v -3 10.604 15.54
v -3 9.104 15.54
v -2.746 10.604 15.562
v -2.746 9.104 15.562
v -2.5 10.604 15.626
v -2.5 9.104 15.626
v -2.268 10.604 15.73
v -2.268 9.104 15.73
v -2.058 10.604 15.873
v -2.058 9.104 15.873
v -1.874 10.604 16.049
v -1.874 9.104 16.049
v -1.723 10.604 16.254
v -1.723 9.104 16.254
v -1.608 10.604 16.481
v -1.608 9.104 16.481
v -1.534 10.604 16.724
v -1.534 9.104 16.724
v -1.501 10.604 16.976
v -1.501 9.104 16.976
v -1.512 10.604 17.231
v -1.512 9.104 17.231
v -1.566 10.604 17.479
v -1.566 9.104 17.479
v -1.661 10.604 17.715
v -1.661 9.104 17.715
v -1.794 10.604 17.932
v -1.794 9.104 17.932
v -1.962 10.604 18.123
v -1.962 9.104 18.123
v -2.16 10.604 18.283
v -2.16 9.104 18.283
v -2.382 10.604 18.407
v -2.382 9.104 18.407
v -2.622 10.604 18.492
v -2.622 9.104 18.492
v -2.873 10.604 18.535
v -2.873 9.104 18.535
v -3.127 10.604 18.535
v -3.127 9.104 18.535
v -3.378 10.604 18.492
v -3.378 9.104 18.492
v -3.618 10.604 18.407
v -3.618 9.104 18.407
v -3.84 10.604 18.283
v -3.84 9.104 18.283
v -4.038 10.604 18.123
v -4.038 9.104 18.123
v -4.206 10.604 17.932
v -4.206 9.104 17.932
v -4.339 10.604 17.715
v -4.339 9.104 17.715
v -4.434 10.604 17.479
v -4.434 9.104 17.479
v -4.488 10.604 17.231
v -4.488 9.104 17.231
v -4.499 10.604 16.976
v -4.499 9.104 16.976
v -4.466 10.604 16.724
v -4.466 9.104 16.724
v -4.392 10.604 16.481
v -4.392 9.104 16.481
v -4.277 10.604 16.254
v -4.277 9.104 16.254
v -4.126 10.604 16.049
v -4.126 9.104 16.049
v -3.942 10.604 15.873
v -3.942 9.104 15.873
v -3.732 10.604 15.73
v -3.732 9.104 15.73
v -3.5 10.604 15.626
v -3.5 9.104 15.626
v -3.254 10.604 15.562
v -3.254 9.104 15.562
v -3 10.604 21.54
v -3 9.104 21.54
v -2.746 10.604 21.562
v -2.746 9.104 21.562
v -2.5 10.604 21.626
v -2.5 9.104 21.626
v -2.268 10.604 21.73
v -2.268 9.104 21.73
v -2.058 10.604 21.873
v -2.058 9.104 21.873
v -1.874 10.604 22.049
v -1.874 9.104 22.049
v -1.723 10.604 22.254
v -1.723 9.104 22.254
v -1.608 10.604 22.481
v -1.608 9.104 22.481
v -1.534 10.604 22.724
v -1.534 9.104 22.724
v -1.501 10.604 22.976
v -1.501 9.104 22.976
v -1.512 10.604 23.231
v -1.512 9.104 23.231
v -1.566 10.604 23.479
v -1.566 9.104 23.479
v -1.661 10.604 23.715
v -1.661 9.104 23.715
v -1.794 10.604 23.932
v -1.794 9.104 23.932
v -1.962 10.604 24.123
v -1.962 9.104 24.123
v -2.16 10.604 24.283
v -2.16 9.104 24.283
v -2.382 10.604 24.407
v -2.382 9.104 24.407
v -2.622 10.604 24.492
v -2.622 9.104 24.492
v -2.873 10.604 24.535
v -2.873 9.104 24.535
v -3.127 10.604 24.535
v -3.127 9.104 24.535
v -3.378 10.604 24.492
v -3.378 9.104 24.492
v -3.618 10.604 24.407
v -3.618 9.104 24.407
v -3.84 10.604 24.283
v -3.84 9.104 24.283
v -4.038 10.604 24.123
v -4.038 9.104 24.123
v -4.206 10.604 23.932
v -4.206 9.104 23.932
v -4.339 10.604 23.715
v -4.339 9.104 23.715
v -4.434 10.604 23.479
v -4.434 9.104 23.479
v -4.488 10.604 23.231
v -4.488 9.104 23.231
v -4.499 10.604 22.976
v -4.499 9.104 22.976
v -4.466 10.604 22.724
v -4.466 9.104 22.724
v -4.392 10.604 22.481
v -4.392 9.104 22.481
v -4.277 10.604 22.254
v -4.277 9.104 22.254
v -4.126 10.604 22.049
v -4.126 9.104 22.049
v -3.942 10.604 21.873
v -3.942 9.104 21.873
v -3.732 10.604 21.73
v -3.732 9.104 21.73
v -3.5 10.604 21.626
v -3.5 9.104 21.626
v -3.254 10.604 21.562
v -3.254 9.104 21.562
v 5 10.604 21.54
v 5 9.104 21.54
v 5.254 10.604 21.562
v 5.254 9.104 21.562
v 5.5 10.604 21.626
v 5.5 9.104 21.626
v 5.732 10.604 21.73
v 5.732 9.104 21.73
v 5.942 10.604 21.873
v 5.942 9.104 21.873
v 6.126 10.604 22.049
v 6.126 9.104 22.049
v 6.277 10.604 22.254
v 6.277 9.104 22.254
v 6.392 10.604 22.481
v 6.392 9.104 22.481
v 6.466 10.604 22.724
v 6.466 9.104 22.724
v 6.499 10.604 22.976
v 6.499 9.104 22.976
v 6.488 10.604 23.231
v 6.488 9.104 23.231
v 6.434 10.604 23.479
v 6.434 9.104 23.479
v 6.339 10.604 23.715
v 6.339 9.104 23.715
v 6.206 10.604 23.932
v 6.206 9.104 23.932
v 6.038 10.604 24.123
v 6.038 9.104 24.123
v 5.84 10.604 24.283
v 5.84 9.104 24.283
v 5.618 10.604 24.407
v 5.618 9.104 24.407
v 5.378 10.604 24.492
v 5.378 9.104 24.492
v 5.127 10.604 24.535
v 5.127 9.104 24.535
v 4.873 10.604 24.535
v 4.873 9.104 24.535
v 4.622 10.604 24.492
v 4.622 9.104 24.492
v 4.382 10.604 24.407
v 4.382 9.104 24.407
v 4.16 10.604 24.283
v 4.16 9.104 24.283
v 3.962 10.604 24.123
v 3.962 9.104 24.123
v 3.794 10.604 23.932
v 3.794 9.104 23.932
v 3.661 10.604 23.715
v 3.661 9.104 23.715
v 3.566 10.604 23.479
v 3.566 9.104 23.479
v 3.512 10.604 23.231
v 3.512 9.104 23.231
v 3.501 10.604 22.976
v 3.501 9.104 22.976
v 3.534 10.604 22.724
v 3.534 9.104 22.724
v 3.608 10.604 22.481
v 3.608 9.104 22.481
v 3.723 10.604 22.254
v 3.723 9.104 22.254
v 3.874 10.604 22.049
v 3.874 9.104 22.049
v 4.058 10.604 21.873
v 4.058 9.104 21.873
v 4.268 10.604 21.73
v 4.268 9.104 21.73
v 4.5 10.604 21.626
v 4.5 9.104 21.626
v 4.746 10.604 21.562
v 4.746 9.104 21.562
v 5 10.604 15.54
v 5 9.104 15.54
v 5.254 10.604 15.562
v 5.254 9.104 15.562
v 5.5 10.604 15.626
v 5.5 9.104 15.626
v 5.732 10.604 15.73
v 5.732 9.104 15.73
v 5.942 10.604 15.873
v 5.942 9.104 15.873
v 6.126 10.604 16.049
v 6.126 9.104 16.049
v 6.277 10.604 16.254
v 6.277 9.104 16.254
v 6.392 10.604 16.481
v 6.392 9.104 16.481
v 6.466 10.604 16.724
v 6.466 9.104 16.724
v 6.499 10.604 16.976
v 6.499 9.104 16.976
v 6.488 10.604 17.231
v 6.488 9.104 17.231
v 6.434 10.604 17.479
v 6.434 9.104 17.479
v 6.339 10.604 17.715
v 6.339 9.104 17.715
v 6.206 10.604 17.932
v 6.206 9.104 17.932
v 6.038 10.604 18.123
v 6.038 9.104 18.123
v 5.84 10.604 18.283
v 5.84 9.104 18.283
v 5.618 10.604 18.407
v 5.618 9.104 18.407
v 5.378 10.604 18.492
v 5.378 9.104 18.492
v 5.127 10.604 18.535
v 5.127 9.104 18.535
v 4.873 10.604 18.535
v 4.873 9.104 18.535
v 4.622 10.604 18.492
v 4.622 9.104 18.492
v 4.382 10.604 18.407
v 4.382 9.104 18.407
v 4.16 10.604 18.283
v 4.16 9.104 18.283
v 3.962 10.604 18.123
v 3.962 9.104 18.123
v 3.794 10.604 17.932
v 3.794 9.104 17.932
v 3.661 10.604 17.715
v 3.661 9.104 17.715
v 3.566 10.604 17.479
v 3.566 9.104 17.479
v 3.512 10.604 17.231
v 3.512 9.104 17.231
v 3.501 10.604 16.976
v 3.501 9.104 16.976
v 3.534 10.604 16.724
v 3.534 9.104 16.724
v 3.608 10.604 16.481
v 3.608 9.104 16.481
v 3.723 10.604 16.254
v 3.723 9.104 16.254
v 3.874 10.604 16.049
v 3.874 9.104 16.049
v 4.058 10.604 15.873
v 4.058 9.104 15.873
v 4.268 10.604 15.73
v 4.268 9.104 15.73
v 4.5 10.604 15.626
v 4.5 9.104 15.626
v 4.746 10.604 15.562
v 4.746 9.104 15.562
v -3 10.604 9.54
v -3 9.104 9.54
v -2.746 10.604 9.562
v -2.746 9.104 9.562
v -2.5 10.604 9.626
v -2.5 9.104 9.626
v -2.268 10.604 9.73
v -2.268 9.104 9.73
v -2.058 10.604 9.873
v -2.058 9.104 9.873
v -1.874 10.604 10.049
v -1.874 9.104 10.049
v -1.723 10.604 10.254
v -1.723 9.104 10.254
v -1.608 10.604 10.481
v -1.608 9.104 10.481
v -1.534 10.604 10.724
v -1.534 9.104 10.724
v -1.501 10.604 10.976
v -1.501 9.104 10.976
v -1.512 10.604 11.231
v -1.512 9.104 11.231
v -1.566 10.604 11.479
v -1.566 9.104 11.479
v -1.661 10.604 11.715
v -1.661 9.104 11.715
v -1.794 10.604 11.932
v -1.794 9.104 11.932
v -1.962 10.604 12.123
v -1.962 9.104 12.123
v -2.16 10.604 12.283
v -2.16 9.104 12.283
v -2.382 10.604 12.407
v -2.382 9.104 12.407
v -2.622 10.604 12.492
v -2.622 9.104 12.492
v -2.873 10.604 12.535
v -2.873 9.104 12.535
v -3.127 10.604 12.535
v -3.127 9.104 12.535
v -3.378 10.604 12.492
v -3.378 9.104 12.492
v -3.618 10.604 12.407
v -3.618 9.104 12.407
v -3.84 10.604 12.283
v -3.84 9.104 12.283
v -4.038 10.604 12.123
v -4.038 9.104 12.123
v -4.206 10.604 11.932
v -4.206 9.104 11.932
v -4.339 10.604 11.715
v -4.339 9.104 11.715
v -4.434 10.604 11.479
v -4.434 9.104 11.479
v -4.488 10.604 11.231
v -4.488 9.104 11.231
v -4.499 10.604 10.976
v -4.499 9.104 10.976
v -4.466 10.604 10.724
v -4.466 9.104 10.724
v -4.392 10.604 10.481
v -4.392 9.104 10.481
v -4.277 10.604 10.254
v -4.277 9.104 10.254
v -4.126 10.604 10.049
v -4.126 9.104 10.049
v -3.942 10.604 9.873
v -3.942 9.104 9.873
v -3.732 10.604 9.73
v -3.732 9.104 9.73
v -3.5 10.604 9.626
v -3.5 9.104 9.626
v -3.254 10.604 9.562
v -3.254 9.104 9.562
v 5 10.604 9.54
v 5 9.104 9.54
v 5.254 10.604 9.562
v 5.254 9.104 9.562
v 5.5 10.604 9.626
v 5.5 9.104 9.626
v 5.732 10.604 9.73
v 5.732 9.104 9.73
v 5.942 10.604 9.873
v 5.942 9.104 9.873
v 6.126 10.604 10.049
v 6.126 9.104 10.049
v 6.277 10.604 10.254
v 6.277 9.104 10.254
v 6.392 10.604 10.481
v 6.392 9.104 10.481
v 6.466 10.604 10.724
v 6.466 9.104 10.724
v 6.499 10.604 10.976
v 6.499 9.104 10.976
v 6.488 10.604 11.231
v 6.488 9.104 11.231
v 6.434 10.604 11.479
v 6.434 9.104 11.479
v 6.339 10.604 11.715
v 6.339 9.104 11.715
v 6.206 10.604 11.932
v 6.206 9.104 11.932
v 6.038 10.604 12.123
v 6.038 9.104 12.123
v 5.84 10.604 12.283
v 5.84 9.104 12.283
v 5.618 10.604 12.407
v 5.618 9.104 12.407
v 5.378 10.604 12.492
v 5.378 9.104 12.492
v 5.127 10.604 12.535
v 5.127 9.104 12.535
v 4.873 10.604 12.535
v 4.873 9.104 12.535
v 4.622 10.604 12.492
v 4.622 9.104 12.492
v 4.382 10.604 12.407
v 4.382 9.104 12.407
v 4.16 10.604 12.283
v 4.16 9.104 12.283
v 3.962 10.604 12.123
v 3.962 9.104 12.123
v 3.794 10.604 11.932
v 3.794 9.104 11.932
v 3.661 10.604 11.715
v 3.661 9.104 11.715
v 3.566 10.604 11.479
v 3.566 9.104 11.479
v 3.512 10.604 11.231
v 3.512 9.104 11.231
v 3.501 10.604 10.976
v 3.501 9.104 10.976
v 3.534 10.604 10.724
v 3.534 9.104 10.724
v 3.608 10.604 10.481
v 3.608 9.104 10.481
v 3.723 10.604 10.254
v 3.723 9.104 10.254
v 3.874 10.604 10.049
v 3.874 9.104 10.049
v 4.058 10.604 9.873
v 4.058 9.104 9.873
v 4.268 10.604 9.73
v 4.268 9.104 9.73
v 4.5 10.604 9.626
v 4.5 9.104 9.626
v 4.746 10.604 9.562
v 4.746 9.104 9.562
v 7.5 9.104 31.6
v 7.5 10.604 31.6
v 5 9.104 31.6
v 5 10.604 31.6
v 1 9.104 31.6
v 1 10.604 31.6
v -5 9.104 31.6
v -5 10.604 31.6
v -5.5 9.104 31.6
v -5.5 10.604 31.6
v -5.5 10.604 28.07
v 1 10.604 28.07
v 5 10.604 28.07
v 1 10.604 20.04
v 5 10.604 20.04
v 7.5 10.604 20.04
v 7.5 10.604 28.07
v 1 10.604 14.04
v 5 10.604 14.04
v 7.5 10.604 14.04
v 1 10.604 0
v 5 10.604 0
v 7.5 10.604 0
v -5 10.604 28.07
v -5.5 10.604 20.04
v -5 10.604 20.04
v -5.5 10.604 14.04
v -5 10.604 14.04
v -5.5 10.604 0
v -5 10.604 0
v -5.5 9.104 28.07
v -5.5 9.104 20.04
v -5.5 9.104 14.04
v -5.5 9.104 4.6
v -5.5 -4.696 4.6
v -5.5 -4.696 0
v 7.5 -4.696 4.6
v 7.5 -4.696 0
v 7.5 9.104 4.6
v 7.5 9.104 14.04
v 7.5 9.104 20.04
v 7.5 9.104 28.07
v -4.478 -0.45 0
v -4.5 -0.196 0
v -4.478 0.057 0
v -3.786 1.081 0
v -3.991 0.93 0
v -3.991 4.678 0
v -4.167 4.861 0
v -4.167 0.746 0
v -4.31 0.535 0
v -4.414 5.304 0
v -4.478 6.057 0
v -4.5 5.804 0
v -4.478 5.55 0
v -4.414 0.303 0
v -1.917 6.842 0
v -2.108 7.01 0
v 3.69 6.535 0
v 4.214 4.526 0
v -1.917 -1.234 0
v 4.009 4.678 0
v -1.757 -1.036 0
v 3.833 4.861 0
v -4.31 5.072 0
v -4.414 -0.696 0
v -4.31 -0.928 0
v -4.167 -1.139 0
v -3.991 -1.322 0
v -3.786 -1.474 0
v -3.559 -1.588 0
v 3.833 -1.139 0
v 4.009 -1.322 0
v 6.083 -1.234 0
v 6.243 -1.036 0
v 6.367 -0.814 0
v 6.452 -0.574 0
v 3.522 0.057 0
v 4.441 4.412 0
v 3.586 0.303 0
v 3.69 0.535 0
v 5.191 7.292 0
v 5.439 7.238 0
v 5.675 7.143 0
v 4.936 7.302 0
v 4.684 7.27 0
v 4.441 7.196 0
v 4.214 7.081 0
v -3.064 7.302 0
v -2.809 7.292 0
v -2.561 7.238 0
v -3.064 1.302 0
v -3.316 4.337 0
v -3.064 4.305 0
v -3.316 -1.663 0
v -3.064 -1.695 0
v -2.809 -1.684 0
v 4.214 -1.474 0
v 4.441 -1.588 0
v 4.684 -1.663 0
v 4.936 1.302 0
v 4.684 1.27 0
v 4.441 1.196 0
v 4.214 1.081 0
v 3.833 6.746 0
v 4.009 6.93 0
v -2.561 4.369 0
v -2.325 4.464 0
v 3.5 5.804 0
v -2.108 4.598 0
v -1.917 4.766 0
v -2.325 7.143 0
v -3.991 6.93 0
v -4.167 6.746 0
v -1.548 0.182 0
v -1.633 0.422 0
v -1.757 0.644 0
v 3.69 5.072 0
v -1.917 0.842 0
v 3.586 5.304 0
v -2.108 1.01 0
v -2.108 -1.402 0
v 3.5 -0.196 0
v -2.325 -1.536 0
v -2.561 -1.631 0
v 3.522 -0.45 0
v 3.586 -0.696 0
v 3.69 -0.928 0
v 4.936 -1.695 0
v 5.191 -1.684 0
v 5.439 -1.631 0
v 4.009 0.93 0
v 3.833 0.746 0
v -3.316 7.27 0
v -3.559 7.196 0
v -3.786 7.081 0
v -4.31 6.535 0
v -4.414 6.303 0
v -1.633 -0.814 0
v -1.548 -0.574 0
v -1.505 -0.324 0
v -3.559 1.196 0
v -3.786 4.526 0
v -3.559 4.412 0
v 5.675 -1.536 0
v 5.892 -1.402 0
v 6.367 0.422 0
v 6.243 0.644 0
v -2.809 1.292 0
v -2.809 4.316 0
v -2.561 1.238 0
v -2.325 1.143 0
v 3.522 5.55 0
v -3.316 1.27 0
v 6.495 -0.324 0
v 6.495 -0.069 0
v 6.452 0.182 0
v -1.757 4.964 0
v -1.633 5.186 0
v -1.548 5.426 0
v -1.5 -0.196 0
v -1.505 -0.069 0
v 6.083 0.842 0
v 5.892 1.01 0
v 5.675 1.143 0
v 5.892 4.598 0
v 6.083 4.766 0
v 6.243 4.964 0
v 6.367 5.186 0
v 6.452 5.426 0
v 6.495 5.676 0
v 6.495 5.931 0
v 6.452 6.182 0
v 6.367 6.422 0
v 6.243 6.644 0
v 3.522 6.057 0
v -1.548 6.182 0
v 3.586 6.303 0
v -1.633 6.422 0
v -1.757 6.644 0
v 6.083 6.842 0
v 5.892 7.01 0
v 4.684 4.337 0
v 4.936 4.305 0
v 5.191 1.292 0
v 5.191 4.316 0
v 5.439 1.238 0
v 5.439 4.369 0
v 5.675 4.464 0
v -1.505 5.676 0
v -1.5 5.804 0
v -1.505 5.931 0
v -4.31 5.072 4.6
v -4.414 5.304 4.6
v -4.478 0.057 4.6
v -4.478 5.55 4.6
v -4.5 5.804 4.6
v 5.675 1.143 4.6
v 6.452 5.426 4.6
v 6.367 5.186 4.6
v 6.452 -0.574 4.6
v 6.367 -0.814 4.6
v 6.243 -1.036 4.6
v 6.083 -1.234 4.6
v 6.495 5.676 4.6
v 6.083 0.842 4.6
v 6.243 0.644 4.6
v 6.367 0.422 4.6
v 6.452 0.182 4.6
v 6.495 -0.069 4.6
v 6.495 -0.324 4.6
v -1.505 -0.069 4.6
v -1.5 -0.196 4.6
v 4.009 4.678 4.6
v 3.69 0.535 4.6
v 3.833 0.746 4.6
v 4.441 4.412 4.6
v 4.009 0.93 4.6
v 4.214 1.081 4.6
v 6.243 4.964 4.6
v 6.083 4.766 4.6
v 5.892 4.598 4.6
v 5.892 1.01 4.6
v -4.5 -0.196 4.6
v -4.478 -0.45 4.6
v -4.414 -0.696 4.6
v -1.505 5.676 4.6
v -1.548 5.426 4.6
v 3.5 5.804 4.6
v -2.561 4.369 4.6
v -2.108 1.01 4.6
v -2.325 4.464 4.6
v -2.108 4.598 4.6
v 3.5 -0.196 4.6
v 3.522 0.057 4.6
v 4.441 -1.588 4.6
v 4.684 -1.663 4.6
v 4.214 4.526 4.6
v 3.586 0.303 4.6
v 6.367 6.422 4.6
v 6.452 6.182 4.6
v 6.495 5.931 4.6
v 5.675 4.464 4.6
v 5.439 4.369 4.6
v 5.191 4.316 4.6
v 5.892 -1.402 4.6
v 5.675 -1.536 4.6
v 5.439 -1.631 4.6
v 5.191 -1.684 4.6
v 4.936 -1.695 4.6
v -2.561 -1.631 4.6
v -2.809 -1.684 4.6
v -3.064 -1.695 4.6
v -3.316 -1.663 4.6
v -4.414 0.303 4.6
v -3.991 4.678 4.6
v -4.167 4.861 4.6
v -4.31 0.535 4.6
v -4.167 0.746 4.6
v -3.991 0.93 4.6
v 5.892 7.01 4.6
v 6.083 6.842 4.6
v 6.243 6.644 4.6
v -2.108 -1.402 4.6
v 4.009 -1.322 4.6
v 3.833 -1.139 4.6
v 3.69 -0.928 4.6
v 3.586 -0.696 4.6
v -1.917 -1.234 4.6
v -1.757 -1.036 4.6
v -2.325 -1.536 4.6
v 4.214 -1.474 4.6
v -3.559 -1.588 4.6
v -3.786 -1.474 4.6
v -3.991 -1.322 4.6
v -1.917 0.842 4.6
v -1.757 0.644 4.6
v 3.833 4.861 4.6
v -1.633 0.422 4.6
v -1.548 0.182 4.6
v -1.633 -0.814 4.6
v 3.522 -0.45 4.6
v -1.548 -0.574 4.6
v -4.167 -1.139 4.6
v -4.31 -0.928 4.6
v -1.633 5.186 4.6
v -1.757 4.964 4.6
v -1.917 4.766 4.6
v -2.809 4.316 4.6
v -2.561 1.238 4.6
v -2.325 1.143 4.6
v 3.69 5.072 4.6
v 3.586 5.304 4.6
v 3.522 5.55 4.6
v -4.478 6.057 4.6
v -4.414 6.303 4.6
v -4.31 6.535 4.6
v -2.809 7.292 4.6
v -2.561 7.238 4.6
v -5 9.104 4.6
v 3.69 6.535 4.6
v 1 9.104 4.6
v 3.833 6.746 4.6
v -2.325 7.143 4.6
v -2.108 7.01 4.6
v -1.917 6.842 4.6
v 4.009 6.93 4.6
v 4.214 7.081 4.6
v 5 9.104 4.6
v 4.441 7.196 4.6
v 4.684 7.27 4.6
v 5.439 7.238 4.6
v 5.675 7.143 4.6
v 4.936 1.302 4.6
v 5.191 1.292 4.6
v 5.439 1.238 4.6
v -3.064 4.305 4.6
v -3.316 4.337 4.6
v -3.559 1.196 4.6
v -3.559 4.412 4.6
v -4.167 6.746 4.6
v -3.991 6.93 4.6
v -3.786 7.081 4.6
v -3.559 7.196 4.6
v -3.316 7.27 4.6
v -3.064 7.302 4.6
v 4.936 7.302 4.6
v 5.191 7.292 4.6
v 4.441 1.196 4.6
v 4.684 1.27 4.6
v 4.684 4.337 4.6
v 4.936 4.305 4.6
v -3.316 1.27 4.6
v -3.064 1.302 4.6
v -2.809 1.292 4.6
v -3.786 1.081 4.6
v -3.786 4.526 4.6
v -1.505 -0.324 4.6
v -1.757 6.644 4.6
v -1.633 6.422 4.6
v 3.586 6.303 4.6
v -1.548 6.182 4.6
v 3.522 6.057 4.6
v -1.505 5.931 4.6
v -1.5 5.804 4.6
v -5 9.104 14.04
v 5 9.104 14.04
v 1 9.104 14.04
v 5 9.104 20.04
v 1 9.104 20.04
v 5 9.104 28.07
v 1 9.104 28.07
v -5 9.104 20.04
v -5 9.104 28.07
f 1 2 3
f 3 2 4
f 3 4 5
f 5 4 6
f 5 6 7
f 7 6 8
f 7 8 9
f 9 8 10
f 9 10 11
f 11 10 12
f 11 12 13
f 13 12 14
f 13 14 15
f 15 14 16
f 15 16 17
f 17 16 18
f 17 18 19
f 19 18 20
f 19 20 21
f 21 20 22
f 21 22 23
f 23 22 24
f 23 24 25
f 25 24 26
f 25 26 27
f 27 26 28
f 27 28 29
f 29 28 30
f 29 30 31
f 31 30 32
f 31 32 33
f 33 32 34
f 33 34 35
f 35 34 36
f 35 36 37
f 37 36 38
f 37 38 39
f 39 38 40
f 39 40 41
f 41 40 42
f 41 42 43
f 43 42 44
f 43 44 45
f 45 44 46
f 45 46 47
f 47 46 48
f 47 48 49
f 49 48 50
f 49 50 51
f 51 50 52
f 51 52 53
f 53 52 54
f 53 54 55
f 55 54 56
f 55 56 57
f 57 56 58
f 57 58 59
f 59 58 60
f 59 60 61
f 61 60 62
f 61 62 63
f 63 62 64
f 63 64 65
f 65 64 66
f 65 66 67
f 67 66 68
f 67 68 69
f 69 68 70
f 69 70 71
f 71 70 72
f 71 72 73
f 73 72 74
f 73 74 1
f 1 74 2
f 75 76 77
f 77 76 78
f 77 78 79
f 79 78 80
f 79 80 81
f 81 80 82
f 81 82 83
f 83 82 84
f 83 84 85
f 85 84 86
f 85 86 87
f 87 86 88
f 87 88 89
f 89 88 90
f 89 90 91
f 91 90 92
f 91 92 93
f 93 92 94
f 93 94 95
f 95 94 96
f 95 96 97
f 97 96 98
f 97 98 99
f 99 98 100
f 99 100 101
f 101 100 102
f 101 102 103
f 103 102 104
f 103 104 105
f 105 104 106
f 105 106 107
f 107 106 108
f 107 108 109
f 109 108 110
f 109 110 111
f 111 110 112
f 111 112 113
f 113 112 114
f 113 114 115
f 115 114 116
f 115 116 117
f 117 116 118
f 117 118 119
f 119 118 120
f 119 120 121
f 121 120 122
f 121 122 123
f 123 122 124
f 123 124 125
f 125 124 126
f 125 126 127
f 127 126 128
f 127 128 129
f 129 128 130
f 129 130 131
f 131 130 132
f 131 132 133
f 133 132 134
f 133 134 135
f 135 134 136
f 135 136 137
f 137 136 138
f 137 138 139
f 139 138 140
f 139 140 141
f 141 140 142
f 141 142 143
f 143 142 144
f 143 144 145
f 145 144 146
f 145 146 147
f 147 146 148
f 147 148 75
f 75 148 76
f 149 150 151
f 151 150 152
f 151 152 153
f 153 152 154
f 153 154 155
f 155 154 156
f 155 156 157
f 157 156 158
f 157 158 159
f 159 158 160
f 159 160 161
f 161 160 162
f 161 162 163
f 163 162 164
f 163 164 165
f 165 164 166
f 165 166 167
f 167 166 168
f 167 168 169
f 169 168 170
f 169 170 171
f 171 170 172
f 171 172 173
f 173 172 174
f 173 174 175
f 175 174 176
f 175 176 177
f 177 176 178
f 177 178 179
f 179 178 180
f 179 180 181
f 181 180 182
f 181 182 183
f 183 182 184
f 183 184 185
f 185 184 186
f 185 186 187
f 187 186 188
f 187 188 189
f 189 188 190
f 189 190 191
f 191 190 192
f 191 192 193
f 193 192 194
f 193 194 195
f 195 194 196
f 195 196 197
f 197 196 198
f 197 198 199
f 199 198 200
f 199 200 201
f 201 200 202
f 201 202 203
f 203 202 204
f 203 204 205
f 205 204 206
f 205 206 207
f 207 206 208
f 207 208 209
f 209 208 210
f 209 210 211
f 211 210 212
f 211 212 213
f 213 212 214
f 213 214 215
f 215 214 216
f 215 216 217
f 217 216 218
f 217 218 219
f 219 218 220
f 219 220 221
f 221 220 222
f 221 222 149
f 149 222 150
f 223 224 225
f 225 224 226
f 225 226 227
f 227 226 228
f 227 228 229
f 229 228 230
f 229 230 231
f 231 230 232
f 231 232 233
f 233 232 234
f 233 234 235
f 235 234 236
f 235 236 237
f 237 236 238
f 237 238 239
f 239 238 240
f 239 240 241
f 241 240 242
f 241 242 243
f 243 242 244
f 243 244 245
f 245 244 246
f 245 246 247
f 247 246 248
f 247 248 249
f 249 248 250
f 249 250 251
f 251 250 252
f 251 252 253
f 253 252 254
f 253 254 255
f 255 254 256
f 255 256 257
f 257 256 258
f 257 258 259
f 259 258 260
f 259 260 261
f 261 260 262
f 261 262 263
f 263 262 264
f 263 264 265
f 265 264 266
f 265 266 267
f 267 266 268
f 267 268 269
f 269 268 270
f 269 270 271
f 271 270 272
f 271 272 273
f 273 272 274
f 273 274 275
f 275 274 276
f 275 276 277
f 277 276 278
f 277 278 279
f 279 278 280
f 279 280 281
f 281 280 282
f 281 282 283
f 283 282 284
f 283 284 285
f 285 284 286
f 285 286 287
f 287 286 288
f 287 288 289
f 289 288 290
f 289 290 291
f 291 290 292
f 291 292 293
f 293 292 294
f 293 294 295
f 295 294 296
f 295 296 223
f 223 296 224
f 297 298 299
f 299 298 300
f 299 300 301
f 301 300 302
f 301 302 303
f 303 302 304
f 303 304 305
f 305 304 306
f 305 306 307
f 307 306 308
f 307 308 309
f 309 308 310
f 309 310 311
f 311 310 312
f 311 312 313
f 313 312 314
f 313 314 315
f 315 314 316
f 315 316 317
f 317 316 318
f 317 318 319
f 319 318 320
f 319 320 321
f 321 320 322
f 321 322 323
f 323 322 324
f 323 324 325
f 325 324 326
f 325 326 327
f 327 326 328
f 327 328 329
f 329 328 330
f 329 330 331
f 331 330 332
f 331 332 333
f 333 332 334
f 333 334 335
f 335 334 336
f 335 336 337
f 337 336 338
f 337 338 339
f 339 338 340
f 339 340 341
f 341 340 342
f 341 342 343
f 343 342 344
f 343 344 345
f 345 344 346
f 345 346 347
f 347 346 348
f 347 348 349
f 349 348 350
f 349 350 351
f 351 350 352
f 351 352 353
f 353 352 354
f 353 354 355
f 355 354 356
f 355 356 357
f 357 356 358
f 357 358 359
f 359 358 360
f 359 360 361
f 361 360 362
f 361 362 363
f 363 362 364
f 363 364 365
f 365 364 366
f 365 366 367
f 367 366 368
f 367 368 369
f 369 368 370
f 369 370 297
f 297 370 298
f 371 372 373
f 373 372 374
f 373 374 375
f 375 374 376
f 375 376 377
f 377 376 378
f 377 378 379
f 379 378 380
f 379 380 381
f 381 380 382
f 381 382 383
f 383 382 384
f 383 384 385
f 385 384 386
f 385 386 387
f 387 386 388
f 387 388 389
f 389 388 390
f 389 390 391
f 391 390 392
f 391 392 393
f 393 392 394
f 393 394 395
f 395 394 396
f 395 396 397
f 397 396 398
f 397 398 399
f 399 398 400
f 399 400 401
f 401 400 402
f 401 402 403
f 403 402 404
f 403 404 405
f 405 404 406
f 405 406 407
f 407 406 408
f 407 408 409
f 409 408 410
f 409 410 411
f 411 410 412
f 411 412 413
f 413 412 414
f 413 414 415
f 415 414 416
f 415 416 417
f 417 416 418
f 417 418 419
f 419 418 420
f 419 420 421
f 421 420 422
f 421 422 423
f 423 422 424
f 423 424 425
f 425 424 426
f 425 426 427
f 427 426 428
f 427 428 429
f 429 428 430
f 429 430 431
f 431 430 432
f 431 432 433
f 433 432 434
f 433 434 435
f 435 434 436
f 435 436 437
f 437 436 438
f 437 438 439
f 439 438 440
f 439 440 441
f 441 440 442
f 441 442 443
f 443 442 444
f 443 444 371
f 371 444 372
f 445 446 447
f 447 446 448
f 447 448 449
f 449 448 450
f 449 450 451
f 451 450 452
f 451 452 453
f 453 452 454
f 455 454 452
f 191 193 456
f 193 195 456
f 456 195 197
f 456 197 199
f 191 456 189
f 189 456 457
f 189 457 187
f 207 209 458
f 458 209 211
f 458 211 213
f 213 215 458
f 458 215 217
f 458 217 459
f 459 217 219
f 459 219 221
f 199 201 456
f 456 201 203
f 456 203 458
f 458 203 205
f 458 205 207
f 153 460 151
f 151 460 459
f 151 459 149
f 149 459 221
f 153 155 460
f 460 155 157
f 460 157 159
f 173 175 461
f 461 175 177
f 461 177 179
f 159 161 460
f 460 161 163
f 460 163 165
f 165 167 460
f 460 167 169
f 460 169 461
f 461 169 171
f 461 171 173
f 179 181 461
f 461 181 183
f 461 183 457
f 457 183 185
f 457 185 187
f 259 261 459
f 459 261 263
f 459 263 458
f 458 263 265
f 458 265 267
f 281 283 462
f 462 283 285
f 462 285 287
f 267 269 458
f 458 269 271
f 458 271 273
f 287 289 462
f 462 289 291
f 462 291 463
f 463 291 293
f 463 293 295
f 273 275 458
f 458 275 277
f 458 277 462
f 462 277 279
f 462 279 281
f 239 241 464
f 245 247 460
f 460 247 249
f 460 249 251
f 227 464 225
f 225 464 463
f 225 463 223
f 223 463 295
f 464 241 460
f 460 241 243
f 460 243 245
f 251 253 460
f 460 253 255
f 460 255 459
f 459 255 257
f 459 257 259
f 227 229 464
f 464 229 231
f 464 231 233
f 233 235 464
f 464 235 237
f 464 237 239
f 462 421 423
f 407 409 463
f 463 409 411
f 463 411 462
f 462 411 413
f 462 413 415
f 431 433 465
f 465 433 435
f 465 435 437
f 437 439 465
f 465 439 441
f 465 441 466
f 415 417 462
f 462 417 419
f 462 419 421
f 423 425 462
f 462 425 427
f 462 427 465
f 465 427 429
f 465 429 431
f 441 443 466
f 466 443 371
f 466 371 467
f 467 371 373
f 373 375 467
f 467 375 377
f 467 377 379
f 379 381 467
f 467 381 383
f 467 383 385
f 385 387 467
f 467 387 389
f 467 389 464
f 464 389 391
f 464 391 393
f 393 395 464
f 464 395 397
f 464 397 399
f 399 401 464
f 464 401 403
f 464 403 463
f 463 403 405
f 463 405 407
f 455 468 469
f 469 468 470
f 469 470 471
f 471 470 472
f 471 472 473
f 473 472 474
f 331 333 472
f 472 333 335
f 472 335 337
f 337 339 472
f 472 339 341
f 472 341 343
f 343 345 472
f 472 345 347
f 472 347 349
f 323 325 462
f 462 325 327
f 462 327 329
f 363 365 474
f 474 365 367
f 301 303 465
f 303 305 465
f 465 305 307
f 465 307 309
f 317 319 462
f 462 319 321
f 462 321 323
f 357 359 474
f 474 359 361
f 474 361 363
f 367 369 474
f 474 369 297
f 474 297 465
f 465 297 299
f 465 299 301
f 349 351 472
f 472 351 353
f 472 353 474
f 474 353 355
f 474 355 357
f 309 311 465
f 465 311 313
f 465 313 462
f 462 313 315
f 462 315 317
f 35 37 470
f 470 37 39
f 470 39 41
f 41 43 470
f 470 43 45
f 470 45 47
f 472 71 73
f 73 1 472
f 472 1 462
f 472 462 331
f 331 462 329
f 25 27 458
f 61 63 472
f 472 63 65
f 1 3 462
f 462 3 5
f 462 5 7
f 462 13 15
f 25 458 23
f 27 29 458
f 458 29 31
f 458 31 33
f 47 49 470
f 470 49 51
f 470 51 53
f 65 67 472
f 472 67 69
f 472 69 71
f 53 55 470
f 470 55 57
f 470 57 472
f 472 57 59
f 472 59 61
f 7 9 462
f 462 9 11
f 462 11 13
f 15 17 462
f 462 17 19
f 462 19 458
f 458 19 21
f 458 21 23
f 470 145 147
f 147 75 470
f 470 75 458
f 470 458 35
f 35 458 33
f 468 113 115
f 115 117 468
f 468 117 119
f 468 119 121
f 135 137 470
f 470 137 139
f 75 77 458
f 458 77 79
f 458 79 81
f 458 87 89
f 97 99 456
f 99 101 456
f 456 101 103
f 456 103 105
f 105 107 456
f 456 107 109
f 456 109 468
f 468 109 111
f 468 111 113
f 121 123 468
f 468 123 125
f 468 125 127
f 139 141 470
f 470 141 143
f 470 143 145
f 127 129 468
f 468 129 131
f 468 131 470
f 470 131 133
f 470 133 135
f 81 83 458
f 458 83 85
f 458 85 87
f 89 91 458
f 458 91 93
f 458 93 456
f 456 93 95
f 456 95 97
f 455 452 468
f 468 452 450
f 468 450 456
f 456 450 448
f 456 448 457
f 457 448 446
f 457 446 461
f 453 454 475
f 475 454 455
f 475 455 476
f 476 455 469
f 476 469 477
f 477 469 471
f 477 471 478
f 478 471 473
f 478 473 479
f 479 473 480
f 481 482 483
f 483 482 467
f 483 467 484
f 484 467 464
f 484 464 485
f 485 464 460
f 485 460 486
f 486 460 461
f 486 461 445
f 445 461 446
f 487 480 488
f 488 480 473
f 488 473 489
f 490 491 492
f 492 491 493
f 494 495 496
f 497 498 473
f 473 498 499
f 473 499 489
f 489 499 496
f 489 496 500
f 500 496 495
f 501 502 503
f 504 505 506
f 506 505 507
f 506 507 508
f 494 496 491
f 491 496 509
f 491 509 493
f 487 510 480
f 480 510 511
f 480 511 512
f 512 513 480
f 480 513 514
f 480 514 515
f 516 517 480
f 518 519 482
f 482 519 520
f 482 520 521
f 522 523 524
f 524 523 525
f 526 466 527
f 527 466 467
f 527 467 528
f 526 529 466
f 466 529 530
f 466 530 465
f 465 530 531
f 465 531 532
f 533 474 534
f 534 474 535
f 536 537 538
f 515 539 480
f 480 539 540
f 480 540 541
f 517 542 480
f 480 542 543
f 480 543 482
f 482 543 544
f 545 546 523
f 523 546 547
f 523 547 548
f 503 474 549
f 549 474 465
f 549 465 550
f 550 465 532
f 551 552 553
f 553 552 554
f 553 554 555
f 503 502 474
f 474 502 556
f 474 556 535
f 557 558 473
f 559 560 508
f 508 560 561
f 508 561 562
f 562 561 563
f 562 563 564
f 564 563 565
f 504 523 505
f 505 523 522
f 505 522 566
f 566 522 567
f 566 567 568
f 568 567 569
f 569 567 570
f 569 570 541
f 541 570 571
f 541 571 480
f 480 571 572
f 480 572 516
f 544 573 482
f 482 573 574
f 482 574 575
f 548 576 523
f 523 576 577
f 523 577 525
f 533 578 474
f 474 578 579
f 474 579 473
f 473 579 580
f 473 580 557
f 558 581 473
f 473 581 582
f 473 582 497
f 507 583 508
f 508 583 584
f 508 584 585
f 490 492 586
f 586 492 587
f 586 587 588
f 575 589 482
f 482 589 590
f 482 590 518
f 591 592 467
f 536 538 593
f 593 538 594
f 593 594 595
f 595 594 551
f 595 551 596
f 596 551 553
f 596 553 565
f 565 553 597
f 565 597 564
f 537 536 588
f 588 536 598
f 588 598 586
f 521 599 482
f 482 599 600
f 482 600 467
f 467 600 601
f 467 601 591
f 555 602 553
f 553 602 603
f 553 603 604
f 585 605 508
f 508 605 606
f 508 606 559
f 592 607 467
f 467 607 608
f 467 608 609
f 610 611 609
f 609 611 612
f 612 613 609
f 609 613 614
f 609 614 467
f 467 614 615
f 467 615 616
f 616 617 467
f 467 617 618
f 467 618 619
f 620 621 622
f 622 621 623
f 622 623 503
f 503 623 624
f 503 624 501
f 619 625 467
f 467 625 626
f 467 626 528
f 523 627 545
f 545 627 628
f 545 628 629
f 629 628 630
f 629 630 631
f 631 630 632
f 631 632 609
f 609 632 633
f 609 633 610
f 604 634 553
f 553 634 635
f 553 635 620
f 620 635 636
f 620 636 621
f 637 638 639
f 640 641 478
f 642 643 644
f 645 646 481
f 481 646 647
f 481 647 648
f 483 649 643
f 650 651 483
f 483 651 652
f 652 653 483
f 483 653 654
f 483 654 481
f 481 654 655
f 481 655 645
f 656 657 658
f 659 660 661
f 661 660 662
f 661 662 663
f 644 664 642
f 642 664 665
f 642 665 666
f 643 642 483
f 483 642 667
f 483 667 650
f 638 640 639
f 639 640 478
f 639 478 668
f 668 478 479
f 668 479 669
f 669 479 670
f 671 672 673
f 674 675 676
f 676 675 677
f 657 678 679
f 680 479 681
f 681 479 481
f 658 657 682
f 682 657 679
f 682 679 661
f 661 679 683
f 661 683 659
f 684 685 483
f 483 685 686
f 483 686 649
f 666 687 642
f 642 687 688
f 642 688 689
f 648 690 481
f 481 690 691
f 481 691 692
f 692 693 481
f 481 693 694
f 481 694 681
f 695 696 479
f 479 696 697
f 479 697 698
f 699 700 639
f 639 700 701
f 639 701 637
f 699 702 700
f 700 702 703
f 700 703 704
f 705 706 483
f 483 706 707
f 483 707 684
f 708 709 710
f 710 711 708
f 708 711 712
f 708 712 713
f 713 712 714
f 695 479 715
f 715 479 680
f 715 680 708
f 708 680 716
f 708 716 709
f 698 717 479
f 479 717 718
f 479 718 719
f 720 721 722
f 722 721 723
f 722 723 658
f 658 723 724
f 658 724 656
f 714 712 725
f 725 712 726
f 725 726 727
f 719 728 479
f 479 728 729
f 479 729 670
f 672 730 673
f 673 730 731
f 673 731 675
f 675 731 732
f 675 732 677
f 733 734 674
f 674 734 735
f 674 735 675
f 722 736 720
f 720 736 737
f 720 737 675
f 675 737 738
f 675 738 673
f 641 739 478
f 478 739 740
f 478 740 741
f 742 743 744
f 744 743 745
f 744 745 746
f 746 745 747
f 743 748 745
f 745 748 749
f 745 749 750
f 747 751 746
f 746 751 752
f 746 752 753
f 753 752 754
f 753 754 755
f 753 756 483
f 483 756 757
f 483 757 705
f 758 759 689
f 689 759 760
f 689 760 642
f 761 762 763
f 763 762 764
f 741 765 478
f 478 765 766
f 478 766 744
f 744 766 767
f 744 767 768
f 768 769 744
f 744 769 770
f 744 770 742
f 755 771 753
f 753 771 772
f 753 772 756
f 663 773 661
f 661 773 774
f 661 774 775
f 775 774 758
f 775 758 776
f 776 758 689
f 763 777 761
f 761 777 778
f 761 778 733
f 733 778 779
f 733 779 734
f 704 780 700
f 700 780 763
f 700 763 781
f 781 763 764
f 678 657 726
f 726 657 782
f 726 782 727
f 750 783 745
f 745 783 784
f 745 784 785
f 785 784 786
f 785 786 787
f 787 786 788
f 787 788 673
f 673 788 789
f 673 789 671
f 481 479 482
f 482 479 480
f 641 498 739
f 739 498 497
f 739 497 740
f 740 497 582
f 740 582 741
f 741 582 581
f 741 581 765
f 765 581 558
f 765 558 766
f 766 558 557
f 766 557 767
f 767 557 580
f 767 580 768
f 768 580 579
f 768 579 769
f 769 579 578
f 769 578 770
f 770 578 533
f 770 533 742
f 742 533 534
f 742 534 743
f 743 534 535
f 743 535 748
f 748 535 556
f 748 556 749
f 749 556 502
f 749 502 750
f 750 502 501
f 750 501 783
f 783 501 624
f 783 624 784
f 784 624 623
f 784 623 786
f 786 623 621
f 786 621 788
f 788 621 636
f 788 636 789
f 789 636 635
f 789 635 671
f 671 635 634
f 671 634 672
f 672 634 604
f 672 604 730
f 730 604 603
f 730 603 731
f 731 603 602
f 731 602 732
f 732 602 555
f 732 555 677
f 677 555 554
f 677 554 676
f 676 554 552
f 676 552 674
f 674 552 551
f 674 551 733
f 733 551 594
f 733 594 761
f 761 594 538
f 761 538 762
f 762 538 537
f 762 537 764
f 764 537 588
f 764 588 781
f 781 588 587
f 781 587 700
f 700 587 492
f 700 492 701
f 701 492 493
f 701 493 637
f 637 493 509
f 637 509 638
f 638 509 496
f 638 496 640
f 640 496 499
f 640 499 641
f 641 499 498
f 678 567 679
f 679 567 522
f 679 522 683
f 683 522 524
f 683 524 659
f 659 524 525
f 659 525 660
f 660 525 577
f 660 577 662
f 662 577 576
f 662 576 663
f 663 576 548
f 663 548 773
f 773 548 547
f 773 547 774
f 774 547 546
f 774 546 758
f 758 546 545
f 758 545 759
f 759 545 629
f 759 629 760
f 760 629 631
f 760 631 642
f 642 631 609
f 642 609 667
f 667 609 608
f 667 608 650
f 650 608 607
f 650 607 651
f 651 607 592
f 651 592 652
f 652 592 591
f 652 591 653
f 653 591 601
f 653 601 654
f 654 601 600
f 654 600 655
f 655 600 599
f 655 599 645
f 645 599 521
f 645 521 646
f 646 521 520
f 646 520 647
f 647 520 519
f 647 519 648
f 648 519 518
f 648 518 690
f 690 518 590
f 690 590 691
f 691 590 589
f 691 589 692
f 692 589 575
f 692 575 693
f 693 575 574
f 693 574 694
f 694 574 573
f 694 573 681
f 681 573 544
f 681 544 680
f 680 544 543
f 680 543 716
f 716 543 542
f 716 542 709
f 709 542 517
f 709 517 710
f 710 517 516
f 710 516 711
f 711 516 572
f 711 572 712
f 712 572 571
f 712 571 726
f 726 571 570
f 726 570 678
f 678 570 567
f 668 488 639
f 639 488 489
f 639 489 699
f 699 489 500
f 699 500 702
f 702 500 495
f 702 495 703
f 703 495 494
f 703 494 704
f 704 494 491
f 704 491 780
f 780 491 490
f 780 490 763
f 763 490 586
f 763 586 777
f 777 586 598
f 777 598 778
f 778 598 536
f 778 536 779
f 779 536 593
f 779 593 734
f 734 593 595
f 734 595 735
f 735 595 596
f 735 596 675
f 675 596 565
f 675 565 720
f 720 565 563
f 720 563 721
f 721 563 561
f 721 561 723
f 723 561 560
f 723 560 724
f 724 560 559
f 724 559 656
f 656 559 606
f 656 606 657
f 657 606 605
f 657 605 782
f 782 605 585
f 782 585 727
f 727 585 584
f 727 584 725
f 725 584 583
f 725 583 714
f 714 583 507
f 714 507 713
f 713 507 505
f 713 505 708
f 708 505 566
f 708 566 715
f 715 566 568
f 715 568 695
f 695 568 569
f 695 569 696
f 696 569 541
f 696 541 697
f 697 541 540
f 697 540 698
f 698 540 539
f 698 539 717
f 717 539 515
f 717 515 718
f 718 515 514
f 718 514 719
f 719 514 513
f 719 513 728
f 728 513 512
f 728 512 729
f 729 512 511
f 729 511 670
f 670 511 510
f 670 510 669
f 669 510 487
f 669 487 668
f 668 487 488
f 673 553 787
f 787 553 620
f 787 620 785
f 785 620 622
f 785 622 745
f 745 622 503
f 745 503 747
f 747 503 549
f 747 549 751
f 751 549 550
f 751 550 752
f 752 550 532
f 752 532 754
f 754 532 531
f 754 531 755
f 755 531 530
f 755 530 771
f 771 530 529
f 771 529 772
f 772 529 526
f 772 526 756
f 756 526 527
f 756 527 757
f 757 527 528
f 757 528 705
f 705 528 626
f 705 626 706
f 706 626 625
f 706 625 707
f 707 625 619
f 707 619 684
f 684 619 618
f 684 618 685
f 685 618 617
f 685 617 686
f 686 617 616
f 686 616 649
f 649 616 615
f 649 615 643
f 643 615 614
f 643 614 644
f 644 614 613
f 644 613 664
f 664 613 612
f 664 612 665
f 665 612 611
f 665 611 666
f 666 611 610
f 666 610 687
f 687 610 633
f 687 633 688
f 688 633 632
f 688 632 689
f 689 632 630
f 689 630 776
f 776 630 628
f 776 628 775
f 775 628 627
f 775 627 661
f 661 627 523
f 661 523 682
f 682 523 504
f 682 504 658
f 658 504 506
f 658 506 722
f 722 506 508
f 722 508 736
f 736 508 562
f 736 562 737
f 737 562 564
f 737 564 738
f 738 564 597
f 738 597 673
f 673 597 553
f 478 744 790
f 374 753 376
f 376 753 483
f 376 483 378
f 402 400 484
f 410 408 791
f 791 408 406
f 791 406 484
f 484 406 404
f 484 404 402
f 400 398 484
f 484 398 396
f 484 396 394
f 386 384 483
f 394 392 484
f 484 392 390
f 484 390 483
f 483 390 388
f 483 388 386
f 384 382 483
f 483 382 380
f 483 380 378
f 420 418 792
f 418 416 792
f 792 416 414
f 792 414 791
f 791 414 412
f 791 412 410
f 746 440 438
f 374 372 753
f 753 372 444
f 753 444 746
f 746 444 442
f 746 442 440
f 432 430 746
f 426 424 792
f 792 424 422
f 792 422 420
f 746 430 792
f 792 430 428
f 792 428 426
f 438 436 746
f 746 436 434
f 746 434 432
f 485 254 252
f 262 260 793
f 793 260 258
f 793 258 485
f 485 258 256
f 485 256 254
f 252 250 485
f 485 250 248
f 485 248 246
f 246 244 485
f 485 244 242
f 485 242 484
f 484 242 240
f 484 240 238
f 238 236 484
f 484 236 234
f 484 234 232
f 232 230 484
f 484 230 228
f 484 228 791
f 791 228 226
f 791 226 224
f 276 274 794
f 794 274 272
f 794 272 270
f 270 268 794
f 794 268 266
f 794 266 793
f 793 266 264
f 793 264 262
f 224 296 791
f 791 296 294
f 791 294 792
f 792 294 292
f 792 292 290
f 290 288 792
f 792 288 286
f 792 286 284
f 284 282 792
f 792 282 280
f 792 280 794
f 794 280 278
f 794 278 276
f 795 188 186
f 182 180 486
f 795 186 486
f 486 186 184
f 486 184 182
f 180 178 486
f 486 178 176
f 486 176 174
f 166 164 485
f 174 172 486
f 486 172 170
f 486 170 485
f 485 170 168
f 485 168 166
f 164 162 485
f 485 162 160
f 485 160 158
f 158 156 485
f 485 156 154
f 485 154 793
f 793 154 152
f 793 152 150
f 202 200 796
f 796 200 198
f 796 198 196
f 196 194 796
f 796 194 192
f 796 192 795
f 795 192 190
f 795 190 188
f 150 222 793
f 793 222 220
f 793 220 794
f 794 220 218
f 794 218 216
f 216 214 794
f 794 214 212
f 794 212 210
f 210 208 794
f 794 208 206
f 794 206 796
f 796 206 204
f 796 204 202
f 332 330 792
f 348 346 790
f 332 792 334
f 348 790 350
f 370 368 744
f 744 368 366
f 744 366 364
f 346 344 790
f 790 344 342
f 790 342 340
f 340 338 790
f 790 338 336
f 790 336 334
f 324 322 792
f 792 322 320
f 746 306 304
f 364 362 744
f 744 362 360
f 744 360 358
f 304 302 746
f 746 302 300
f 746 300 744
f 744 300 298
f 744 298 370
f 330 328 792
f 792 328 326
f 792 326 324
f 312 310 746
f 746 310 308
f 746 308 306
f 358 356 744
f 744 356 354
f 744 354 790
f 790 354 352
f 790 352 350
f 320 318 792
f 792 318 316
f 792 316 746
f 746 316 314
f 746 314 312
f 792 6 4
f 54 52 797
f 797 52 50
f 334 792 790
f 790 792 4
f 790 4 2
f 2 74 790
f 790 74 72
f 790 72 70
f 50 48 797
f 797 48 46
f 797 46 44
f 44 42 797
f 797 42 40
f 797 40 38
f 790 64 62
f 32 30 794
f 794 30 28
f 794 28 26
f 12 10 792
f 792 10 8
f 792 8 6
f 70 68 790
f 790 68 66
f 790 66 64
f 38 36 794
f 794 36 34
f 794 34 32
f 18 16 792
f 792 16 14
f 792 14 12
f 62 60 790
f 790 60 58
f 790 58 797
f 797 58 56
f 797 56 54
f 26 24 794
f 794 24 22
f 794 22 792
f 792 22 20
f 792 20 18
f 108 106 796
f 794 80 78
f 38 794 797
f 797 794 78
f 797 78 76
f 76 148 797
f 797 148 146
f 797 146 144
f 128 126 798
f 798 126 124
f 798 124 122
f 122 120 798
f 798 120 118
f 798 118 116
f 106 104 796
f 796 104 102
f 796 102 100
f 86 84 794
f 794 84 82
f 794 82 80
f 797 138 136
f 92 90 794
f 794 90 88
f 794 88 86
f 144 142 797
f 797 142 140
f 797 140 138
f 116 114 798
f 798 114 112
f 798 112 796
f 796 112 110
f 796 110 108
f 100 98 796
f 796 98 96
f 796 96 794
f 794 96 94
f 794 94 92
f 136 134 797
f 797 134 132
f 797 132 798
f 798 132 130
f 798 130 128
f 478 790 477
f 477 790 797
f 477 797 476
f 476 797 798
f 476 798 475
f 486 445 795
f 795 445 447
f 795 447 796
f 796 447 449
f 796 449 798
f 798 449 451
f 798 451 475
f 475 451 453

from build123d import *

# Parameters (mm, degrees)
SKETCH2_W           = 13
SKETCH2_H           = 12.3
SKETCH2_R           = 1.5
BOSS_EXTRUDE1_DEPTH = 4.6
SKETCH3_W           = 13
SKETCH3_H           = 27
SKETCH3_R           = 1.5
BOSS_EXTRUDE2_DEPTH = 10.603673126
SKETCH4_W           = 13
SKETCH4_H           = 12.3
CUT_EXTRUDE1_DEPTH  = 27
SKETCH5_W           = 13
SKETCH5_H           = 3
BOSS_EXTRUDE3_DEPTH = 4.6
SKETCH7_W           = 13
SKETCH7_H           = 27
CUT_EXTRUDE2_DEPTH  = 1.5


with BuildPart() as part:
    # Sketch2 → Boss-Extrude1 (new body)
    with BuildSketch(Plane.XY):
        with Locations((1, 1.453673126)):
            Rectangle(SKETCH2_W, SKETCH2_H)
        with Locations((-3, 5.803673126)):
            Circle(SKETCH2_R, mode=Mode.SUBTRACT)
        with Locations((-3, -0.196326874)):
            Circle(SKETCH2_R, mode=Mode.SUBTRACT)
        with Locations(Location((5, -0.196326874, 0), (0, 0, 180))):
            Circle(SKETCH2_R, mode=Mode.SUBTRACT)
        with Locations(Location((5, 5.803673126, 0), (0, 0, 180))):
            Circle(SKETCH2_R, mode=Mode.SUBTRACT)
    extrude(amount=BOSS_EXTRUDE1_DEPTH)

    # Sketch3 → Boss-Extrude2 (add)
    with BuildSketch(Plane(origin=(0, 0, 0), x_dir=(1, 0, 0), z_dir=(0, 1, 0))):
        with Locations((1, -18.1)):
            Rectangle(SKETCH3_W, SKETCH3_H)
        with Locations(Location((-3, -17.04, 0), (0, 0, 90))):
            Circle(SKETCH3_R, mode=Mode.SUBTRACT)
        with Locations(Location((-3, -23.04, 0), (0, 0, 90))):
            Circle(SKETCH3_R, mode=Mode.SUBTRACT)
        with Locations(Location((5, -23.04, 0), (0, 0, 90))):
            Circle(SKETCH3_R, mode=Mode.SUBTRACT)
        with Locations(Location((5, -17.04, 0), (0, 0, 90))):
            Circle(SKETCH3_R, mode=Mode.SUBTRACT)
        with Locations(Location((-3, -11.04, 0), (0, 0, 90))):
            Circle(SKETCH3_R, mode=Mode.SUBTRACT)
        with Locations(Location((5, -11.04, 0), (0, 0, 90))):
            Circle(SKETCH3_R, mode=Mode.SUBTRACT)
    extrude(amount=BOSS_EXTRUDE2_DEPTH)

    # Sketch4 → Cut-Extrude1 (cut)
    with BuildSketch(Plane.XY.offset(31.6)):
        with Locations((1, 1.453673126)):
            Rectangle(SKETCH4_W, SKETCH4_H)
    extrude(amount=-CUT_EXTRUDE1_DEPTH, mode=Mode.SUBTRACT)


with BuildPart() as cut_extrude1_piece_1:
    # of the separate pieces the step leaves, piece 1, a body of its own (cut_extrude1_pieces)
    add(part.part.solids().sort_by_distance((7.5, 10.603673126, 4.6))[0])



with BuildPart() as cut_extrude1_piece_2:
    # of the separate pieces the step leaves, piece 2, a body of its own (cut_extrude1_pieces)
    add(part.part.solids().sort_by_distance((-5.5, 7.603673126, 0))[0])


with BuildPart() as cut_extrude1_piece_1_1:
    add(cut_extrude1_piece_1.part)

    add(cut_extrude1_piece_2.part)  # Boss-Extrude3 merges Cut-Extrude1 piece 2
    # Sketch5 → Boss-Extrude3 (add)
    with BuildSketch(Plane(origin=(0, 0, 4.6), x_dir=(-1, 0, 0), z_dir=(0, 0, -1))):
        with Locations((-1, 9.103673126)):
            Rectangle(SKETCH5_W, SKETCH5_H)
    extrude(amount=BOSS_EXTRUDE3_DEPTH)

    # Sketch7 → Cut-Extrude2 (cut)
    with BuildSketch(Plane.XZ.offset(-7.603673126)):
        with Locations((1, 18.1)):
            Rectangle(SKETCH7_W, SKETCH7_H)
    extrude(amount=-CUT_EXTRUDE2_DEPTH, mode=Mode.SUBTRACT)


solid = cut_extrude1_piece_1_1.part
